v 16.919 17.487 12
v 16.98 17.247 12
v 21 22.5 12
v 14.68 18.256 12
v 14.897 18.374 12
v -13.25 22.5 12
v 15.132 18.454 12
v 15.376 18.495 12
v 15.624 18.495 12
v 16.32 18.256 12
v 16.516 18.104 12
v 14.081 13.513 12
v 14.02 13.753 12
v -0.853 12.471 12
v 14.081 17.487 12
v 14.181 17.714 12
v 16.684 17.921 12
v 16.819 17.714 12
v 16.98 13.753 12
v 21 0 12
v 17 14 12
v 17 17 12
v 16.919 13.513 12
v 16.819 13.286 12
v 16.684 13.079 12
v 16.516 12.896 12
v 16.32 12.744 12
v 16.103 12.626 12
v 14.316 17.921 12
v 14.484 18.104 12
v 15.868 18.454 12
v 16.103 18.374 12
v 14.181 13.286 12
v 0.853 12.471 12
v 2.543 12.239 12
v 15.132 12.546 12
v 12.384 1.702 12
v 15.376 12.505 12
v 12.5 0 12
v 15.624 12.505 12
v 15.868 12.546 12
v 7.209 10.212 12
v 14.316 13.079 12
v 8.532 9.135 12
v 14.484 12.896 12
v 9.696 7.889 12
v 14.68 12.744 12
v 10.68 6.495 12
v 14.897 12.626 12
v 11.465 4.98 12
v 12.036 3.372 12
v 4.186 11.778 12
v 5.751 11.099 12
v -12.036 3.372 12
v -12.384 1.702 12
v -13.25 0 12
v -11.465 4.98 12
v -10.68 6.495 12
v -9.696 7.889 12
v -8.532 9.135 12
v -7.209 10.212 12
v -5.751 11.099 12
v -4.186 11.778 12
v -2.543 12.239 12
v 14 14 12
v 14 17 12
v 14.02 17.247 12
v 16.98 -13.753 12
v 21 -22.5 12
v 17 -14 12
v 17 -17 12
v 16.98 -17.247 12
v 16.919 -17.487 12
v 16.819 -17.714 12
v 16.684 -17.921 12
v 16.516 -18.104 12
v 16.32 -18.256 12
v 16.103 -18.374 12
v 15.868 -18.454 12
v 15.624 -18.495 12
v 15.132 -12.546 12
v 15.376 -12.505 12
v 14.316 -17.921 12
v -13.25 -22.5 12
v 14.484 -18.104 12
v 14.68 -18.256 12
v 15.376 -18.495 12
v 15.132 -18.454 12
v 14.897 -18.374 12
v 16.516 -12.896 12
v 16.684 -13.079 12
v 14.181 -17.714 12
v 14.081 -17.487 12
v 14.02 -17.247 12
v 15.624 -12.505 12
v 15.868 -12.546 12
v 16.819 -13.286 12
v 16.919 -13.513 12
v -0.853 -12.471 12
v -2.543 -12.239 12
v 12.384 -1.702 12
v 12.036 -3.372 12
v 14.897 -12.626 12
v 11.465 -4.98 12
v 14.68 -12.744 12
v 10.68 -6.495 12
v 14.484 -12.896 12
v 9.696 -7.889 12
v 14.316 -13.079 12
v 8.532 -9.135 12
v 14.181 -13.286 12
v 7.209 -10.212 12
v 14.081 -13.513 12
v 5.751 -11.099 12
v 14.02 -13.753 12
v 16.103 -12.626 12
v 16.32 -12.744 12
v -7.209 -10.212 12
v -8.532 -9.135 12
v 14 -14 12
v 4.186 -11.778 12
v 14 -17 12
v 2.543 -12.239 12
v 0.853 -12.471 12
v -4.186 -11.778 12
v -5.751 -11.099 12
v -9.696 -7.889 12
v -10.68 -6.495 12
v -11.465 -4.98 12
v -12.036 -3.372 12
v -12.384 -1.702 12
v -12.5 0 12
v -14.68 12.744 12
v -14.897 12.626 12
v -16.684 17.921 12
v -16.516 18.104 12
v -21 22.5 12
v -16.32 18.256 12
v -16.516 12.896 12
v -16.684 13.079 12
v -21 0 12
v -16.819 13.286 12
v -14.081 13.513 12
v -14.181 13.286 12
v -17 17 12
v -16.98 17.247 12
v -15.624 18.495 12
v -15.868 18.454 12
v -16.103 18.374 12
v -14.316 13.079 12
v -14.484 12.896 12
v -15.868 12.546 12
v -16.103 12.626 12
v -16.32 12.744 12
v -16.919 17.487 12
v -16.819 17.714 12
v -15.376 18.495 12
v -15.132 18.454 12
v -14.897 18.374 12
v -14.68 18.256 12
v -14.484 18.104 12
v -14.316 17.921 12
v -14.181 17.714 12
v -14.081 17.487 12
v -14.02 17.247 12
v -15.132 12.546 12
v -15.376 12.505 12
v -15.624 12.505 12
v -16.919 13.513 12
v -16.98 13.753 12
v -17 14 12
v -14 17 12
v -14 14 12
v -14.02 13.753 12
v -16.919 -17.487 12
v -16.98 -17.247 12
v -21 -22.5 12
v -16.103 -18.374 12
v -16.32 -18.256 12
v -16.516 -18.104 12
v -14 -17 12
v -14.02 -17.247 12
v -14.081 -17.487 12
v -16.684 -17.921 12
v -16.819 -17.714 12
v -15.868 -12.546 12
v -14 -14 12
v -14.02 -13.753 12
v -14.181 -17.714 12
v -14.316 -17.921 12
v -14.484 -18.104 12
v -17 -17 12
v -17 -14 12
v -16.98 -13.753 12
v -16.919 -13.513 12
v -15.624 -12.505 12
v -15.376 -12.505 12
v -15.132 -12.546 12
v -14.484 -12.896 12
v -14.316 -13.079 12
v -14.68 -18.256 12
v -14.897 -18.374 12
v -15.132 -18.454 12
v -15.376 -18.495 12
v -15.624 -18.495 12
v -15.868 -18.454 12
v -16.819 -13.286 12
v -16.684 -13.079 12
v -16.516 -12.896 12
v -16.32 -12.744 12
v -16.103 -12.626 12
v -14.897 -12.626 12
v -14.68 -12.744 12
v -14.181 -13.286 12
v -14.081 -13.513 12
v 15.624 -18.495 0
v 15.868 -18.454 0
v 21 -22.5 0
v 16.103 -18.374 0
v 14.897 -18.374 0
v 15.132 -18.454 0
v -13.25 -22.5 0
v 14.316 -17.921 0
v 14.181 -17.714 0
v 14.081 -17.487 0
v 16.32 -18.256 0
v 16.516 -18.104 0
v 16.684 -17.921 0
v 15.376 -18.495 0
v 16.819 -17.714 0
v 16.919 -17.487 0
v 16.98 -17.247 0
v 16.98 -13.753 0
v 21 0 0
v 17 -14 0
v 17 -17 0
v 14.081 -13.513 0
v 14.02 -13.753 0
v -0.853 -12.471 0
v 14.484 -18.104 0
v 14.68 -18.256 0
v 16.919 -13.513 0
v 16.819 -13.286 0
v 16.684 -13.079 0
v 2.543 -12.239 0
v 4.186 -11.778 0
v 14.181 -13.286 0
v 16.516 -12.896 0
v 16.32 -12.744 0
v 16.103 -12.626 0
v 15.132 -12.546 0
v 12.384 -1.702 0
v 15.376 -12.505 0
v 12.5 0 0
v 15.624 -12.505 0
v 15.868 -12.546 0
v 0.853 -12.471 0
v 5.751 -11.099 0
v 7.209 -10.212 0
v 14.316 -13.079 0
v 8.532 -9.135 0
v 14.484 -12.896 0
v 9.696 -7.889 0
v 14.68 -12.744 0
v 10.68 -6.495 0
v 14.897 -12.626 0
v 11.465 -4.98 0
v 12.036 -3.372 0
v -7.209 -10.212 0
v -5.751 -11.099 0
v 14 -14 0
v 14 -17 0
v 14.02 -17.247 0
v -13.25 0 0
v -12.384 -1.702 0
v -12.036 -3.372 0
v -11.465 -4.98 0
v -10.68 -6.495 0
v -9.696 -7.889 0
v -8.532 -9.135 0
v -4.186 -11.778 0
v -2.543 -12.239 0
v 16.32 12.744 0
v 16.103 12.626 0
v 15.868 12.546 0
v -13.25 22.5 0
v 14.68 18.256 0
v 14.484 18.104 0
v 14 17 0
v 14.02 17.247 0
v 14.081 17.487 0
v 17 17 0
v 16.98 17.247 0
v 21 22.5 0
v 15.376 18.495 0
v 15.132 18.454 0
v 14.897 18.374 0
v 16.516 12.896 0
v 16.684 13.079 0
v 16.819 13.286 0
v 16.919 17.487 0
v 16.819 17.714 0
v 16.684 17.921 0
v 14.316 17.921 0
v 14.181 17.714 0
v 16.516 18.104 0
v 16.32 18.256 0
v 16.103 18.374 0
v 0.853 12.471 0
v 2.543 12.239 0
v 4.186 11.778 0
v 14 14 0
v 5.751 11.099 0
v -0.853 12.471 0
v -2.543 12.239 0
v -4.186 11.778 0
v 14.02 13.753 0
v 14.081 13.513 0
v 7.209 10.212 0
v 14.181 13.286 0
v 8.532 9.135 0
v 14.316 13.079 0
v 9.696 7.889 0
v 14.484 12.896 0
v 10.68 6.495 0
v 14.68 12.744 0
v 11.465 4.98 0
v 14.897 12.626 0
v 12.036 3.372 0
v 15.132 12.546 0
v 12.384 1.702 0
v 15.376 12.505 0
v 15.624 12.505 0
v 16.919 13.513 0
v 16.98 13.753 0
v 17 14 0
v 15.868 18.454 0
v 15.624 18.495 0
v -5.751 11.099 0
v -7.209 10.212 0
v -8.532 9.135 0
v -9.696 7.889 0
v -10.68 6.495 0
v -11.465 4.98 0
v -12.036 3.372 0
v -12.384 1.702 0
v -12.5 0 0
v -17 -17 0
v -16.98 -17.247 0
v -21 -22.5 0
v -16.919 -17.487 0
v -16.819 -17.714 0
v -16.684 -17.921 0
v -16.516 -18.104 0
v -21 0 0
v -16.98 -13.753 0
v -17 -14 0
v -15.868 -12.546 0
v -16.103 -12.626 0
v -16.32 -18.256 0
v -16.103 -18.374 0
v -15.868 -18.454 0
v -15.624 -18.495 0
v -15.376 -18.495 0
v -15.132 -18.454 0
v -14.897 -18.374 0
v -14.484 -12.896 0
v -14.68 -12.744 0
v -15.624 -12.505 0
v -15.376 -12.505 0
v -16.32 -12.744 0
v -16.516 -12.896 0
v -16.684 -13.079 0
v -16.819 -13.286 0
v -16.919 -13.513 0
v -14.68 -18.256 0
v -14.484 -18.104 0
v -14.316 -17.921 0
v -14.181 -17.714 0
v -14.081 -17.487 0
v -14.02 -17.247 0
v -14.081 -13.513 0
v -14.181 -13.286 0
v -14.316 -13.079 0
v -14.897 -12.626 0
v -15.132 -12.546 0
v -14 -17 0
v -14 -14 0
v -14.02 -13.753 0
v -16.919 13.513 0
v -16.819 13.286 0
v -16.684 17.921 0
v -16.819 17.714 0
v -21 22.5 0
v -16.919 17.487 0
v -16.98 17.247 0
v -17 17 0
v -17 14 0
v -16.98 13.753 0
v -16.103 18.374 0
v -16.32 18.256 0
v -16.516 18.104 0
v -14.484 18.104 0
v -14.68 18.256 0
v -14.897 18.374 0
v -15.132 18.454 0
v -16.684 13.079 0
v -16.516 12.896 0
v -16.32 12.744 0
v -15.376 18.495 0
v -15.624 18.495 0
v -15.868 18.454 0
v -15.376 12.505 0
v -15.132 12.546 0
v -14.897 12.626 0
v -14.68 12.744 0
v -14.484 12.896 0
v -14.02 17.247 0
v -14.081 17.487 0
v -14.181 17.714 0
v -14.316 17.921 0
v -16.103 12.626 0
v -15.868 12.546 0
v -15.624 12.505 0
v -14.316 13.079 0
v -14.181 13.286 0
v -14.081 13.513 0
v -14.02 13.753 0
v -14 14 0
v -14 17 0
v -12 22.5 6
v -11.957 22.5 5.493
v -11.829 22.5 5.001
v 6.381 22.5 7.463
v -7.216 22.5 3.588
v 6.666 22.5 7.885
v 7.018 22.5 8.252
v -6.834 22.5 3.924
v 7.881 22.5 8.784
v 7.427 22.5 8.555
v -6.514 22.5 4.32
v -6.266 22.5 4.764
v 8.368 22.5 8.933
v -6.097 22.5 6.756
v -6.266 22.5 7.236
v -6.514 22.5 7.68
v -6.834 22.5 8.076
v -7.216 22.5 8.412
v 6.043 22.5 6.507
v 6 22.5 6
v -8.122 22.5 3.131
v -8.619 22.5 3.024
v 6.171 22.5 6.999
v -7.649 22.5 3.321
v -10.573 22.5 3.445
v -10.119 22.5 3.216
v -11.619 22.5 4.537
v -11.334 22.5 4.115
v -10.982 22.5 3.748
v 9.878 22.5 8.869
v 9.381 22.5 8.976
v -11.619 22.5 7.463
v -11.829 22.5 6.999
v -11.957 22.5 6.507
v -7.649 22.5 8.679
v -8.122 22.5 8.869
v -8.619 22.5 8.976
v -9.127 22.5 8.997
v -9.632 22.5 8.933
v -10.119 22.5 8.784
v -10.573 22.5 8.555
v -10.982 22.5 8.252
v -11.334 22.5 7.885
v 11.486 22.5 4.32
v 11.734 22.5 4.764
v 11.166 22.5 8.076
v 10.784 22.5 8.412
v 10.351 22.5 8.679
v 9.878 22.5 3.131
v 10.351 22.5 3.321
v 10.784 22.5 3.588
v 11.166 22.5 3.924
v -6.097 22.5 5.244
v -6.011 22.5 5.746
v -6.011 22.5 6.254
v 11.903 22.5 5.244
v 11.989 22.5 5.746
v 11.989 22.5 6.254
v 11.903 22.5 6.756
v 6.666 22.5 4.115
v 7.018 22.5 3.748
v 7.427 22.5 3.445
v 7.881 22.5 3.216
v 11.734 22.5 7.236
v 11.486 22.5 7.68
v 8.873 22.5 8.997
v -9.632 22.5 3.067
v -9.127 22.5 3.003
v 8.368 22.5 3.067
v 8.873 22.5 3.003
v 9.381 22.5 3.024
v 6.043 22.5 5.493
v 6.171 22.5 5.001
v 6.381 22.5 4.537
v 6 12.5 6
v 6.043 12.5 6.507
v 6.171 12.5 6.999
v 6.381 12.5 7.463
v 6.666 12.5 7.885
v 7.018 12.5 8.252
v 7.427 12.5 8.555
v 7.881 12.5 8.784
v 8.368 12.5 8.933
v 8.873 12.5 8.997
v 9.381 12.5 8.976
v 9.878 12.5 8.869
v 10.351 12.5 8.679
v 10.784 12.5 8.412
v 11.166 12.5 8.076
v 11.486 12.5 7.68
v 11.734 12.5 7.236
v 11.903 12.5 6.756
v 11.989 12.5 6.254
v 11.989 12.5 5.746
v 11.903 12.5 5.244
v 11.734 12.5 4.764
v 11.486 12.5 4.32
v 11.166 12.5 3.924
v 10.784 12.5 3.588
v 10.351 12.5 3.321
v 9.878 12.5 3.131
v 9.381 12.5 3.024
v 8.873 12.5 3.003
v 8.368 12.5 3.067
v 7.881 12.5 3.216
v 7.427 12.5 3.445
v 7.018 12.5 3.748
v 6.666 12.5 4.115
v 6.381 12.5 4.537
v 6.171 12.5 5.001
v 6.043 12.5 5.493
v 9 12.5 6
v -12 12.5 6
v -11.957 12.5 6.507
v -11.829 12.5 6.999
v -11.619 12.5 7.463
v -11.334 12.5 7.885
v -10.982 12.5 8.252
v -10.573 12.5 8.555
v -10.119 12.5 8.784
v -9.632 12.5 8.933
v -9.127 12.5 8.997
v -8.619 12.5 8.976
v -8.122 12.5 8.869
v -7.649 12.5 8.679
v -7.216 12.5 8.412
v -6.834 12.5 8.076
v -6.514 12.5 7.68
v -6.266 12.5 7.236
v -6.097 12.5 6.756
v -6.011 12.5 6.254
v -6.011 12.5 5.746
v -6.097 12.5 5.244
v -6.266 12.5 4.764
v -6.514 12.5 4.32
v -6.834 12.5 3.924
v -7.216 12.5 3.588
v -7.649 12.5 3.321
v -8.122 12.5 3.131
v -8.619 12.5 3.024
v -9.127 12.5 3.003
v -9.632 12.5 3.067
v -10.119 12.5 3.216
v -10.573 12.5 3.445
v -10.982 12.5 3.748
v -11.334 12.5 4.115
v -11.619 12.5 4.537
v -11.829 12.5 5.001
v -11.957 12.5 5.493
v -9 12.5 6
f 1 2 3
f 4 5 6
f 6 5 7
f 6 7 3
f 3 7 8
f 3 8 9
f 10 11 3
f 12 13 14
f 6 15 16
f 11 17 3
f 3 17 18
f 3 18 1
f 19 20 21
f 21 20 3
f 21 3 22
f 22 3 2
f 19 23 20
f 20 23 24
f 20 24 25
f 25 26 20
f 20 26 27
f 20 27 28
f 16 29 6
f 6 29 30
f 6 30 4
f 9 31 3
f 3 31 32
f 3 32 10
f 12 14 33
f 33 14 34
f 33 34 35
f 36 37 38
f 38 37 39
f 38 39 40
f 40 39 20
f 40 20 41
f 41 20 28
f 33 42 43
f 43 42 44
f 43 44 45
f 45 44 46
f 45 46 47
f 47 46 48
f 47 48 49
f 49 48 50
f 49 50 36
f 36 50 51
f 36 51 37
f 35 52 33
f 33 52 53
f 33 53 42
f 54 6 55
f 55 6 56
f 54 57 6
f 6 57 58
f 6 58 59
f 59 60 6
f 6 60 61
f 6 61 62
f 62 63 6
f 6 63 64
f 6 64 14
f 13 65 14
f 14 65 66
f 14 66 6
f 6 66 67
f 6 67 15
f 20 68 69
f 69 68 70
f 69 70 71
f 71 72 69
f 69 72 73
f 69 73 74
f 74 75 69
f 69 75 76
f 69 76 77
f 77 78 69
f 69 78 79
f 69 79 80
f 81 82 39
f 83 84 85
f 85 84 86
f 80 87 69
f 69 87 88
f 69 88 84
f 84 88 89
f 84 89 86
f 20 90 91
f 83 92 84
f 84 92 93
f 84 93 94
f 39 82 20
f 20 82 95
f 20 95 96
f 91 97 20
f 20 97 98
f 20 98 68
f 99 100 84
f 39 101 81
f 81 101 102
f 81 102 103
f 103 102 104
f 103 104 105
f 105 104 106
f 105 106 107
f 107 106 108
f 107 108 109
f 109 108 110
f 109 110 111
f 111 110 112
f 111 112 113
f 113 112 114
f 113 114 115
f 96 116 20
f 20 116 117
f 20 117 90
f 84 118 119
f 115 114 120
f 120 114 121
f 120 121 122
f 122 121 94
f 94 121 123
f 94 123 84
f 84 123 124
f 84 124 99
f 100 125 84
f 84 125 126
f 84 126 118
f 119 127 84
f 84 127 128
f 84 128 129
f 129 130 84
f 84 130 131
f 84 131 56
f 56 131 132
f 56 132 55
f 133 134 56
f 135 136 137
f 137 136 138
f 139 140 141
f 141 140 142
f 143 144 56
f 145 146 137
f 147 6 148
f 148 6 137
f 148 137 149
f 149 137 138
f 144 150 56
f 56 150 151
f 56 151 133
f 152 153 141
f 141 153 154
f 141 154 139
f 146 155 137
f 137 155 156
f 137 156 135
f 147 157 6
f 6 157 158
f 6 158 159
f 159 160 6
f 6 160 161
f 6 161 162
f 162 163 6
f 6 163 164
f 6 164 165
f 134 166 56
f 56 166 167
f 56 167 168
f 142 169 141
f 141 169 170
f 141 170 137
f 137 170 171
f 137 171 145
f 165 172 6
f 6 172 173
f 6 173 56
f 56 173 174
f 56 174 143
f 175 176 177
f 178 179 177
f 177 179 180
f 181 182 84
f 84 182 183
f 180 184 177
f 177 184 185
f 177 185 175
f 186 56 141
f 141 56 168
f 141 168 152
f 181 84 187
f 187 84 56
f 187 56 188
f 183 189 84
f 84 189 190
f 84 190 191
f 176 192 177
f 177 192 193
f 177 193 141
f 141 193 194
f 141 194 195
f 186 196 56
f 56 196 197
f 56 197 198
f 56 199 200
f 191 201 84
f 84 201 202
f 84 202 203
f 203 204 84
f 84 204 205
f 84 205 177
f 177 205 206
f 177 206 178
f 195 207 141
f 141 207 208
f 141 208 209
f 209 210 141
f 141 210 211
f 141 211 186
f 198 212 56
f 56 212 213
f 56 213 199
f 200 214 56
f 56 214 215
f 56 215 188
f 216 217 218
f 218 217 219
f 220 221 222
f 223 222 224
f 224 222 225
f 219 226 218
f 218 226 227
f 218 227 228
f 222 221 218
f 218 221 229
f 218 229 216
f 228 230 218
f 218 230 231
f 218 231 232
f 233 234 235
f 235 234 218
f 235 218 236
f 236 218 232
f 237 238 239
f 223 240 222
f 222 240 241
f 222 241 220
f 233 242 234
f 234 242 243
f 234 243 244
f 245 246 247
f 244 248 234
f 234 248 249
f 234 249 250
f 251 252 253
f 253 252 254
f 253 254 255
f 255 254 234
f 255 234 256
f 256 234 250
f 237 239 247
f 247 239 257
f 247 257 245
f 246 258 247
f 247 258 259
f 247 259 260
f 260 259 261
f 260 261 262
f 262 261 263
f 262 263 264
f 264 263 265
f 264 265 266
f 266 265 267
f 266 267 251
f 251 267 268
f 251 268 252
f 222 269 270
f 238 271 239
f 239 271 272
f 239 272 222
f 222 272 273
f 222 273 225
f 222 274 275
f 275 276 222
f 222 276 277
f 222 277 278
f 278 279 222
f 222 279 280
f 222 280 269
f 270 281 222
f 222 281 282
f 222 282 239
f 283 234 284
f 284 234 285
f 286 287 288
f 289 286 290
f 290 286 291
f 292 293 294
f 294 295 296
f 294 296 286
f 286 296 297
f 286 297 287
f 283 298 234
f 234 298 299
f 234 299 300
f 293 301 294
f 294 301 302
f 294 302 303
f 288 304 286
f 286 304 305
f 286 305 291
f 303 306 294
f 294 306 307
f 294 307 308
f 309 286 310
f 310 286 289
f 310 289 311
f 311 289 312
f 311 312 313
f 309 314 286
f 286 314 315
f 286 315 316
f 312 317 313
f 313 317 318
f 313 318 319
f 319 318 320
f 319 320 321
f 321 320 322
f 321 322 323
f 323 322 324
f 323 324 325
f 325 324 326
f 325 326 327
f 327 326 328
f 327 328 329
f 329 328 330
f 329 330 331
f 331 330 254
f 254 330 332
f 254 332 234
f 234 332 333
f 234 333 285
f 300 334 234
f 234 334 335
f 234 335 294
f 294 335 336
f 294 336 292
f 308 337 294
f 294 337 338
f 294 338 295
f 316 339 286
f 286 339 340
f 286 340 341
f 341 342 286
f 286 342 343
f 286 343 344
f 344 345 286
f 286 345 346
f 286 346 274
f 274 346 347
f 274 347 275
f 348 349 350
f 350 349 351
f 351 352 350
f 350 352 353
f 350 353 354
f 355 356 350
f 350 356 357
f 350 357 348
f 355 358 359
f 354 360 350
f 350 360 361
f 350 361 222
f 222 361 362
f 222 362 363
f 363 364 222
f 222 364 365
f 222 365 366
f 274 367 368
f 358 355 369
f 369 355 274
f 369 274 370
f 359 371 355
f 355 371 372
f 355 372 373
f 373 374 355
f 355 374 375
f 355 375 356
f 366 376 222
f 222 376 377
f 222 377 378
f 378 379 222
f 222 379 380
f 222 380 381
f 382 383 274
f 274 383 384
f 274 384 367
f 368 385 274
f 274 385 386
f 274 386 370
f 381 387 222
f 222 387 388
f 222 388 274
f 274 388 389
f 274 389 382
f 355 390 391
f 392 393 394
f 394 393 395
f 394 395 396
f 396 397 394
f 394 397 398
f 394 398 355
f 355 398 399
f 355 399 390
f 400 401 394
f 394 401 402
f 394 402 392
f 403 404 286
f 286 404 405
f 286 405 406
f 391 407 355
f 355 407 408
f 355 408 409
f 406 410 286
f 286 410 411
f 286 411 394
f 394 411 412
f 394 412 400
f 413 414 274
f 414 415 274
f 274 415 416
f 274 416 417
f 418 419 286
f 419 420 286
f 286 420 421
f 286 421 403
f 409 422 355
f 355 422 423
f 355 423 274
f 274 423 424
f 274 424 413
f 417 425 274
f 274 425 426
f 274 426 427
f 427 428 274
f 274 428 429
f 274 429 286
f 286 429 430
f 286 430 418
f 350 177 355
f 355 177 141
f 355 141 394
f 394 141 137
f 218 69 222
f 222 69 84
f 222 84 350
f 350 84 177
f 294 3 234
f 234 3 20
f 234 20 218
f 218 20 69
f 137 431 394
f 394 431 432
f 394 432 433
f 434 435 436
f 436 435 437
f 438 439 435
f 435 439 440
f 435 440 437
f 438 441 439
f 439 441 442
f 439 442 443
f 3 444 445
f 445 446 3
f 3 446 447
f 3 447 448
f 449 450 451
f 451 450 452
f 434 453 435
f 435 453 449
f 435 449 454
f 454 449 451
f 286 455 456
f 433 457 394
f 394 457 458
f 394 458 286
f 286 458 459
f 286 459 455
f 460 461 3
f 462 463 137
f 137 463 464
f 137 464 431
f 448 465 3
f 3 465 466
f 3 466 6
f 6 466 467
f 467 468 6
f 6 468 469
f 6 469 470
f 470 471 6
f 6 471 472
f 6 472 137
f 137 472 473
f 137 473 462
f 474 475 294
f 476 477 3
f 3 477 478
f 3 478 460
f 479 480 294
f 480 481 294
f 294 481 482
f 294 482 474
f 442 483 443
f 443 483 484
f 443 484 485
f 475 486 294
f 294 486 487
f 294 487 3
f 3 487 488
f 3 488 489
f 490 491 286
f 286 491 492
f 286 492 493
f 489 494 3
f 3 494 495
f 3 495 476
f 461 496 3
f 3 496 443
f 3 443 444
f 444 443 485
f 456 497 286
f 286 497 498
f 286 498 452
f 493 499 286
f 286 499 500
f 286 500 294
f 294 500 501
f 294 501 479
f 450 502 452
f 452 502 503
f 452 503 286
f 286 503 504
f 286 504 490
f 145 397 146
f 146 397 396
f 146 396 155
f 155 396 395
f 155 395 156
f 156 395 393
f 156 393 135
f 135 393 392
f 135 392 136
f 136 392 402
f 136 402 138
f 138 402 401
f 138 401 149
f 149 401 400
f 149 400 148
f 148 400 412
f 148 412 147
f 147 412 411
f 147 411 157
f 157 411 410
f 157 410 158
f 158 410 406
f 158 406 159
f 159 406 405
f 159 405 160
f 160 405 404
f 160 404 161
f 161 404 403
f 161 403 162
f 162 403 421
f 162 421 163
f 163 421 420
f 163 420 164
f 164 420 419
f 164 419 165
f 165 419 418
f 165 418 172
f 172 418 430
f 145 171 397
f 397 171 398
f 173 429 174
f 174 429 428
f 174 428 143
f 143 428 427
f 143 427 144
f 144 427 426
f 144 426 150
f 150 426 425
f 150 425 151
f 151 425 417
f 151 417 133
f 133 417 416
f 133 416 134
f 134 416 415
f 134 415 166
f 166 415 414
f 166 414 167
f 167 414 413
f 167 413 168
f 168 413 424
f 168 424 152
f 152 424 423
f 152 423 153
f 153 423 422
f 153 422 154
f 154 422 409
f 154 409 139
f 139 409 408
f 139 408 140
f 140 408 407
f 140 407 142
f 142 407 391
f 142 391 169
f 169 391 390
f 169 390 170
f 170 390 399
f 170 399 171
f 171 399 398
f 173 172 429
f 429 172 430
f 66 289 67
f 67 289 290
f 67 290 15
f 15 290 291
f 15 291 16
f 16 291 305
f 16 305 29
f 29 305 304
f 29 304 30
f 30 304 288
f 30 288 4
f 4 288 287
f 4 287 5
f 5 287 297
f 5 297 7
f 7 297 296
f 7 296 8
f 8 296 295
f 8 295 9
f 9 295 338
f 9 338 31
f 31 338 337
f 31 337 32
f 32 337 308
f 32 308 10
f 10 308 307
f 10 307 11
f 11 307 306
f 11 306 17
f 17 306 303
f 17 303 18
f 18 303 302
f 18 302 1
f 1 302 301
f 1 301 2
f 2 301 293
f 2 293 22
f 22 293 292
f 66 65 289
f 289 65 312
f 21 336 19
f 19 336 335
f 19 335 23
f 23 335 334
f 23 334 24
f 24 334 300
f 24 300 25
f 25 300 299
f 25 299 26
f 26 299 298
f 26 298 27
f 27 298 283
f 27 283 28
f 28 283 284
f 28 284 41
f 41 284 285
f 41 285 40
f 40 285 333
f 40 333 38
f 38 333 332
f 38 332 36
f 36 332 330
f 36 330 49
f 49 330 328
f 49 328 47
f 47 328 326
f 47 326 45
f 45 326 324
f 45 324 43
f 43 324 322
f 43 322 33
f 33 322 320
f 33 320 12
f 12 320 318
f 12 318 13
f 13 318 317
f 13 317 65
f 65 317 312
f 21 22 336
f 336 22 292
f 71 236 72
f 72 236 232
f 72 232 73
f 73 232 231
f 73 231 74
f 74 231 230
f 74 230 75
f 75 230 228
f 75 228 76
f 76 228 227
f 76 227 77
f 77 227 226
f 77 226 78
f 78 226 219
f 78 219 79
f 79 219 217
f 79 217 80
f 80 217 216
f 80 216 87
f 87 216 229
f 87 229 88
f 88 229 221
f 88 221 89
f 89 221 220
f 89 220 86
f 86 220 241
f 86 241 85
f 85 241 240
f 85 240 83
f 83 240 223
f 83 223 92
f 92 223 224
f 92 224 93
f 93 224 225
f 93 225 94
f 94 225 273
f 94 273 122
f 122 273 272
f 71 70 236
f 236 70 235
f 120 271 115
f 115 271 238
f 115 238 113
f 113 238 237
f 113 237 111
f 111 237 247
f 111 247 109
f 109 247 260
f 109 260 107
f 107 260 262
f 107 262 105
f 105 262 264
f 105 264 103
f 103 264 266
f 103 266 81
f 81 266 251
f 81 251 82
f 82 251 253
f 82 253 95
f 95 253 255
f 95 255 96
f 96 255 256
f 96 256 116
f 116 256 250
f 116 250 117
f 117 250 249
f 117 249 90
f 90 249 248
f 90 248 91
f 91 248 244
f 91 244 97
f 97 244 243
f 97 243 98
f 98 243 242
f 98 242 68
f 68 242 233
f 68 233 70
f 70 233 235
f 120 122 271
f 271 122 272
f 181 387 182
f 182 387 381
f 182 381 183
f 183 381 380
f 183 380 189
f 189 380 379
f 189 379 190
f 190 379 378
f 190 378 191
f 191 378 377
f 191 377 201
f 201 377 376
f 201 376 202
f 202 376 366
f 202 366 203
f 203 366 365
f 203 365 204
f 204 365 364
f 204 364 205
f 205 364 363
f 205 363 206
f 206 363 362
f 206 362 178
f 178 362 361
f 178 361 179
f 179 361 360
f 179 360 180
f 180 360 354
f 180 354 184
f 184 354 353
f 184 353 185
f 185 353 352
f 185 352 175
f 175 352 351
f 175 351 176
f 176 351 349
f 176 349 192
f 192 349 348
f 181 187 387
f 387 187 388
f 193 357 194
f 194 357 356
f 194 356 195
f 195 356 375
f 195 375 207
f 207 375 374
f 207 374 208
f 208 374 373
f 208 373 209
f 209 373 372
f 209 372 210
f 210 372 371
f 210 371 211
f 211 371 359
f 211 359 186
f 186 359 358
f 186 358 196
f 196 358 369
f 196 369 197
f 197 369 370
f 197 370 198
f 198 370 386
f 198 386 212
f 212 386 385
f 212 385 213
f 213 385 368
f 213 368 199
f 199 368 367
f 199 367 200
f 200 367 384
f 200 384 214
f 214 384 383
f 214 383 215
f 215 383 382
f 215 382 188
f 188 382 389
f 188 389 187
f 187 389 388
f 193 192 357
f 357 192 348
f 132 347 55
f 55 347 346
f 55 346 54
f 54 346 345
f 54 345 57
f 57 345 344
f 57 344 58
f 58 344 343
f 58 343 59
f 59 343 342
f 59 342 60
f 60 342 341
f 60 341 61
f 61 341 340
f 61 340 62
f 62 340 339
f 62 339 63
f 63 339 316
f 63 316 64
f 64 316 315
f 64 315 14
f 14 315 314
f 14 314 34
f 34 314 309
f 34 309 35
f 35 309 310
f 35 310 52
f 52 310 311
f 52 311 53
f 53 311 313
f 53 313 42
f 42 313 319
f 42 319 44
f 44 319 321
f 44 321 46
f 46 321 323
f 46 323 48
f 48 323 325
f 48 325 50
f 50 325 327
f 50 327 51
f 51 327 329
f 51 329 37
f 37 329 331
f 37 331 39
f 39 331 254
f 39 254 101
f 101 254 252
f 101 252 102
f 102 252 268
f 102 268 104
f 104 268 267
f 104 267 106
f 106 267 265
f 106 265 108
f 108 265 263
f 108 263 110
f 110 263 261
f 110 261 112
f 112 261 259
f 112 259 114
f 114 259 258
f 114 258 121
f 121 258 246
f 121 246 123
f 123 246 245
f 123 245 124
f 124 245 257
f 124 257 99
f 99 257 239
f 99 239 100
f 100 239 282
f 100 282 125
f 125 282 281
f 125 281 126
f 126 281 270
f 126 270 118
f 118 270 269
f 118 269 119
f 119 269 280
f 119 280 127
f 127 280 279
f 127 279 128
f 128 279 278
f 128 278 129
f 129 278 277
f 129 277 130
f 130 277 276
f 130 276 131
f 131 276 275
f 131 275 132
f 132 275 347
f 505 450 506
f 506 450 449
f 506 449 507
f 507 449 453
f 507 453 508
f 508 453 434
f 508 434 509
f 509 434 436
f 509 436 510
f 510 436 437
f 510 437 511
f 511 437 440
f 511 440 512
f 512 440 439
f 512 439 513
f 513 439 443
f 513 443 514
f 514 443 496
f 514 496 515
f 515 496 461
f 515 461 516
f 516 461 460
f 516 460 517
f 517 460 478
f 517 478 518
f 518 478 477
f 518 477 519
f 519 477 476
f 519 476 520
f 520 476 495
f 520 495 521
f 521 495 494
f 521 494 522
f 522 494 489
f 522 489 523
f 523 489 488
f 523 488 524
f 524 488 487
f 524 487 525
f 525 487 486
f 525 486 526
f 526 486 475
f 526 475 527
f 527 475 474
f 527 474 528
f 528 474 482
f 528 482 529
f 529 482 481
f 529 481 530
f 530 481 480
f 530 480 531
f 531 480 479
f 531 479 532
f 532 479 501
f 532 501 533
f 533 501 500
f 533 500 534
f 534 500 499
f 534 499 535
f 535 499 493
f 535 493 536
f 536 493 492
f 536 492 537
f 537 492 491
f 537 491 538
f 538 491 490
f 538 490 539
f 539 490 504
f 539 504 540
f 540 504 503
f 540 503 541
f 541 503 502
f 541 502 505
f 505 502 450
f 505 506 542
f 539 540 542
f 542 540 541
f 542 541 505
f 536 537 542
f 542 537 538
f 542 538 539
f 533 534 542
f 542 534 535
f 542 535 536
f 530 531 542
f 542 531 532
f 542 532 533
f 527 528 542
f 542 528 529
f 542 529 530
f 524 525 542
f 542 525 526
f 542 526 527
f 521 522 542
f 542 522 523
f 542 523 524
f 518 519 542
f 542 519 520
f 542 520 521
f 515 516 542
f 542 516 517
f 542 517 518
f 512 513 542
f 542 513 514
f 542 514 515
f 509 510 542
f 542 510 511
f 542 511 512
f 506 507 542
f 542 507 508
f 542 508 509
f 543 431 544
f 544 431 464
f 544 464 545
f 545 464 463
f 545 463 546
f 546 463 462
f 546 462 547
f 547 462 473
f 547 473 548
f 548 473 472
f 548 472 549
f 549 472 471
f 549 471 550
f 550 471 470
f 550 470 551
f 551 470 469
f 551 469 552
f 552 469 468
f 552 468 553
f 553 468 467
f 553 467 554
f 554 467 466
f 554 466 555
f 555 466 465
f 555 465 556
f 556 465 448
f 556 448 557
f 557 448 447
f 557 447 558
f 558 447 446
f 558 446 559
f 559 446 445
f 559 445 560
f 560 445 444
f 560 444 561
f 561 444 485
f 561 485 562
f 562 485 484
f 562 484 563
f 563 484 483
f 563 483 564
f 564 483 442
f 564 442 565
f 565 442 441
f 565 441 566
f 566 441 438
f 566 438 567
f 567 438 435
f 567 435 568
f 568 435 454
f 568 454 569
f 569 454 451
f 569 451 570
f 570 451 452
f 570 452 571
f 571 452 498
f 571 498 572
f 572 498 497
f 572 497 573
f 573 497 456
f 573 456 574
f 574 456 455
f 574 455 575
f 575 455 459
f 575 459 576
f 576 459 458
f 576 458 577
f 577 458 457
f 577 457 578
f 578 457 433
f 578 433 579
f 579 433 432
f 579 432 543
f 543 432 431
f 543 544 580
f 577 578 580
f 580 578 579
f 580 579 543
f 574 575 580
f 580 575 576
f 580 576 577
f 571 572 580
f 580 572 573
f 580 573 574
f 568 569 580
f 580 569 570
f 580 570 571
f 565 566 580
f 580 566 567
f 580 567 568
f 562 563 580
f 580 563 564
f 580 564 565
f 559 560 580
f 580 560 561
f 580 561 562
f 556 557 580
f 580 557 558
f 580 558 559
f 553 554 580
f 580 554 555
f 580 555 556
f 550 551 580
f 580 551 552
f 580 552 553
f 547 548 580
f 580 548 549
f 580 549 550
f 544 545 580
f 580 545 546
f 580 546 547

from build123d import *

# Parameters (mm, degrees)
SKETCH_1_W          = 42
SKETCH_1_H          = 45
SKETCH_1_R          = 12.5
EXTRUDE_1_DEPTH     = 12
SKETCH_2_R          = 3
CUT_EXTRUDE_2_DEPTH = 10


with BuildPart() as part:
    # 草图1 → 凸台-拉伸1 (new body)
    with BuildSketch(Plane.XY):
        Rectangle(SKETCH_1_W, SKETCH_1_H)
        Circle(SKETCH_1_R, mode=Mode.SUBTRACT)
        with BuildLine():
            Line((-14, 17), (-14, 14))
            ThreePointArc((-14, 14), (-15.5, 12.5), (-17, 14))
            Line((-17, 14), (-17, 17))
            ThreePointArc((-17, 17), (-15.5, 18.5), (-14, 17))
        make_face(mode=Mode.SUBTRACT)
        with BuildLine():
            Line((14, 17), (14, 14))
            ThreePointArc((14, 14), (15.5, 12.5), (17, 14))
            Line((17, 14), (17, 17))
            ThreePointArc((17, 17), (15.5, 18.5), (14, 17))
        make_face(mode=Mode.SUBTRACT)
        with BuildLine():
            Line((14, -17), (14, -14))
            ThreePointArc((14, -14), (15.5, -12.5), (17, -14))
            Line((17, -14), (17, -17))
            ThreePointArc((17, -17), (15.5, -18.5), (14, -17))
        make_face(mode=Mode.SUBTRACT)
        with BuildLine():
            Line((-14, -17), (-14, -14))
            ThreePointArc((-14, -14), (-15.5, -12.5), (-17, -14))
            Line((-17, -14), (-17, -17))
            ThreePointArc((-17, -17), (-15.5, -18.5), (-14, -17))
        make_face(mode=Mode.SUBTRACT)
    extrude(amount=EXTRUDE_1_DEPTH)

    # 草图2 → 切除-拉伸2 (cut)
    with BuildSketch(Plane(origin=(0, 22.5, 0), x_dir=(1, 0, 0), z_dir=(0, 1, 0))):
        with Locations(Location((-9, -6, 0), (0, 0, 180))):
            Circle(SKETCH_2_R)
        with Locations(Location((9, -6, 0), (0, 0, 180))):
            Circle(SKETCH_2_R)
    extrude(amount=-CUT_EXTRUDE_2_DEPTH, mode=Mode.SUBTRACT)


solid = part.part
